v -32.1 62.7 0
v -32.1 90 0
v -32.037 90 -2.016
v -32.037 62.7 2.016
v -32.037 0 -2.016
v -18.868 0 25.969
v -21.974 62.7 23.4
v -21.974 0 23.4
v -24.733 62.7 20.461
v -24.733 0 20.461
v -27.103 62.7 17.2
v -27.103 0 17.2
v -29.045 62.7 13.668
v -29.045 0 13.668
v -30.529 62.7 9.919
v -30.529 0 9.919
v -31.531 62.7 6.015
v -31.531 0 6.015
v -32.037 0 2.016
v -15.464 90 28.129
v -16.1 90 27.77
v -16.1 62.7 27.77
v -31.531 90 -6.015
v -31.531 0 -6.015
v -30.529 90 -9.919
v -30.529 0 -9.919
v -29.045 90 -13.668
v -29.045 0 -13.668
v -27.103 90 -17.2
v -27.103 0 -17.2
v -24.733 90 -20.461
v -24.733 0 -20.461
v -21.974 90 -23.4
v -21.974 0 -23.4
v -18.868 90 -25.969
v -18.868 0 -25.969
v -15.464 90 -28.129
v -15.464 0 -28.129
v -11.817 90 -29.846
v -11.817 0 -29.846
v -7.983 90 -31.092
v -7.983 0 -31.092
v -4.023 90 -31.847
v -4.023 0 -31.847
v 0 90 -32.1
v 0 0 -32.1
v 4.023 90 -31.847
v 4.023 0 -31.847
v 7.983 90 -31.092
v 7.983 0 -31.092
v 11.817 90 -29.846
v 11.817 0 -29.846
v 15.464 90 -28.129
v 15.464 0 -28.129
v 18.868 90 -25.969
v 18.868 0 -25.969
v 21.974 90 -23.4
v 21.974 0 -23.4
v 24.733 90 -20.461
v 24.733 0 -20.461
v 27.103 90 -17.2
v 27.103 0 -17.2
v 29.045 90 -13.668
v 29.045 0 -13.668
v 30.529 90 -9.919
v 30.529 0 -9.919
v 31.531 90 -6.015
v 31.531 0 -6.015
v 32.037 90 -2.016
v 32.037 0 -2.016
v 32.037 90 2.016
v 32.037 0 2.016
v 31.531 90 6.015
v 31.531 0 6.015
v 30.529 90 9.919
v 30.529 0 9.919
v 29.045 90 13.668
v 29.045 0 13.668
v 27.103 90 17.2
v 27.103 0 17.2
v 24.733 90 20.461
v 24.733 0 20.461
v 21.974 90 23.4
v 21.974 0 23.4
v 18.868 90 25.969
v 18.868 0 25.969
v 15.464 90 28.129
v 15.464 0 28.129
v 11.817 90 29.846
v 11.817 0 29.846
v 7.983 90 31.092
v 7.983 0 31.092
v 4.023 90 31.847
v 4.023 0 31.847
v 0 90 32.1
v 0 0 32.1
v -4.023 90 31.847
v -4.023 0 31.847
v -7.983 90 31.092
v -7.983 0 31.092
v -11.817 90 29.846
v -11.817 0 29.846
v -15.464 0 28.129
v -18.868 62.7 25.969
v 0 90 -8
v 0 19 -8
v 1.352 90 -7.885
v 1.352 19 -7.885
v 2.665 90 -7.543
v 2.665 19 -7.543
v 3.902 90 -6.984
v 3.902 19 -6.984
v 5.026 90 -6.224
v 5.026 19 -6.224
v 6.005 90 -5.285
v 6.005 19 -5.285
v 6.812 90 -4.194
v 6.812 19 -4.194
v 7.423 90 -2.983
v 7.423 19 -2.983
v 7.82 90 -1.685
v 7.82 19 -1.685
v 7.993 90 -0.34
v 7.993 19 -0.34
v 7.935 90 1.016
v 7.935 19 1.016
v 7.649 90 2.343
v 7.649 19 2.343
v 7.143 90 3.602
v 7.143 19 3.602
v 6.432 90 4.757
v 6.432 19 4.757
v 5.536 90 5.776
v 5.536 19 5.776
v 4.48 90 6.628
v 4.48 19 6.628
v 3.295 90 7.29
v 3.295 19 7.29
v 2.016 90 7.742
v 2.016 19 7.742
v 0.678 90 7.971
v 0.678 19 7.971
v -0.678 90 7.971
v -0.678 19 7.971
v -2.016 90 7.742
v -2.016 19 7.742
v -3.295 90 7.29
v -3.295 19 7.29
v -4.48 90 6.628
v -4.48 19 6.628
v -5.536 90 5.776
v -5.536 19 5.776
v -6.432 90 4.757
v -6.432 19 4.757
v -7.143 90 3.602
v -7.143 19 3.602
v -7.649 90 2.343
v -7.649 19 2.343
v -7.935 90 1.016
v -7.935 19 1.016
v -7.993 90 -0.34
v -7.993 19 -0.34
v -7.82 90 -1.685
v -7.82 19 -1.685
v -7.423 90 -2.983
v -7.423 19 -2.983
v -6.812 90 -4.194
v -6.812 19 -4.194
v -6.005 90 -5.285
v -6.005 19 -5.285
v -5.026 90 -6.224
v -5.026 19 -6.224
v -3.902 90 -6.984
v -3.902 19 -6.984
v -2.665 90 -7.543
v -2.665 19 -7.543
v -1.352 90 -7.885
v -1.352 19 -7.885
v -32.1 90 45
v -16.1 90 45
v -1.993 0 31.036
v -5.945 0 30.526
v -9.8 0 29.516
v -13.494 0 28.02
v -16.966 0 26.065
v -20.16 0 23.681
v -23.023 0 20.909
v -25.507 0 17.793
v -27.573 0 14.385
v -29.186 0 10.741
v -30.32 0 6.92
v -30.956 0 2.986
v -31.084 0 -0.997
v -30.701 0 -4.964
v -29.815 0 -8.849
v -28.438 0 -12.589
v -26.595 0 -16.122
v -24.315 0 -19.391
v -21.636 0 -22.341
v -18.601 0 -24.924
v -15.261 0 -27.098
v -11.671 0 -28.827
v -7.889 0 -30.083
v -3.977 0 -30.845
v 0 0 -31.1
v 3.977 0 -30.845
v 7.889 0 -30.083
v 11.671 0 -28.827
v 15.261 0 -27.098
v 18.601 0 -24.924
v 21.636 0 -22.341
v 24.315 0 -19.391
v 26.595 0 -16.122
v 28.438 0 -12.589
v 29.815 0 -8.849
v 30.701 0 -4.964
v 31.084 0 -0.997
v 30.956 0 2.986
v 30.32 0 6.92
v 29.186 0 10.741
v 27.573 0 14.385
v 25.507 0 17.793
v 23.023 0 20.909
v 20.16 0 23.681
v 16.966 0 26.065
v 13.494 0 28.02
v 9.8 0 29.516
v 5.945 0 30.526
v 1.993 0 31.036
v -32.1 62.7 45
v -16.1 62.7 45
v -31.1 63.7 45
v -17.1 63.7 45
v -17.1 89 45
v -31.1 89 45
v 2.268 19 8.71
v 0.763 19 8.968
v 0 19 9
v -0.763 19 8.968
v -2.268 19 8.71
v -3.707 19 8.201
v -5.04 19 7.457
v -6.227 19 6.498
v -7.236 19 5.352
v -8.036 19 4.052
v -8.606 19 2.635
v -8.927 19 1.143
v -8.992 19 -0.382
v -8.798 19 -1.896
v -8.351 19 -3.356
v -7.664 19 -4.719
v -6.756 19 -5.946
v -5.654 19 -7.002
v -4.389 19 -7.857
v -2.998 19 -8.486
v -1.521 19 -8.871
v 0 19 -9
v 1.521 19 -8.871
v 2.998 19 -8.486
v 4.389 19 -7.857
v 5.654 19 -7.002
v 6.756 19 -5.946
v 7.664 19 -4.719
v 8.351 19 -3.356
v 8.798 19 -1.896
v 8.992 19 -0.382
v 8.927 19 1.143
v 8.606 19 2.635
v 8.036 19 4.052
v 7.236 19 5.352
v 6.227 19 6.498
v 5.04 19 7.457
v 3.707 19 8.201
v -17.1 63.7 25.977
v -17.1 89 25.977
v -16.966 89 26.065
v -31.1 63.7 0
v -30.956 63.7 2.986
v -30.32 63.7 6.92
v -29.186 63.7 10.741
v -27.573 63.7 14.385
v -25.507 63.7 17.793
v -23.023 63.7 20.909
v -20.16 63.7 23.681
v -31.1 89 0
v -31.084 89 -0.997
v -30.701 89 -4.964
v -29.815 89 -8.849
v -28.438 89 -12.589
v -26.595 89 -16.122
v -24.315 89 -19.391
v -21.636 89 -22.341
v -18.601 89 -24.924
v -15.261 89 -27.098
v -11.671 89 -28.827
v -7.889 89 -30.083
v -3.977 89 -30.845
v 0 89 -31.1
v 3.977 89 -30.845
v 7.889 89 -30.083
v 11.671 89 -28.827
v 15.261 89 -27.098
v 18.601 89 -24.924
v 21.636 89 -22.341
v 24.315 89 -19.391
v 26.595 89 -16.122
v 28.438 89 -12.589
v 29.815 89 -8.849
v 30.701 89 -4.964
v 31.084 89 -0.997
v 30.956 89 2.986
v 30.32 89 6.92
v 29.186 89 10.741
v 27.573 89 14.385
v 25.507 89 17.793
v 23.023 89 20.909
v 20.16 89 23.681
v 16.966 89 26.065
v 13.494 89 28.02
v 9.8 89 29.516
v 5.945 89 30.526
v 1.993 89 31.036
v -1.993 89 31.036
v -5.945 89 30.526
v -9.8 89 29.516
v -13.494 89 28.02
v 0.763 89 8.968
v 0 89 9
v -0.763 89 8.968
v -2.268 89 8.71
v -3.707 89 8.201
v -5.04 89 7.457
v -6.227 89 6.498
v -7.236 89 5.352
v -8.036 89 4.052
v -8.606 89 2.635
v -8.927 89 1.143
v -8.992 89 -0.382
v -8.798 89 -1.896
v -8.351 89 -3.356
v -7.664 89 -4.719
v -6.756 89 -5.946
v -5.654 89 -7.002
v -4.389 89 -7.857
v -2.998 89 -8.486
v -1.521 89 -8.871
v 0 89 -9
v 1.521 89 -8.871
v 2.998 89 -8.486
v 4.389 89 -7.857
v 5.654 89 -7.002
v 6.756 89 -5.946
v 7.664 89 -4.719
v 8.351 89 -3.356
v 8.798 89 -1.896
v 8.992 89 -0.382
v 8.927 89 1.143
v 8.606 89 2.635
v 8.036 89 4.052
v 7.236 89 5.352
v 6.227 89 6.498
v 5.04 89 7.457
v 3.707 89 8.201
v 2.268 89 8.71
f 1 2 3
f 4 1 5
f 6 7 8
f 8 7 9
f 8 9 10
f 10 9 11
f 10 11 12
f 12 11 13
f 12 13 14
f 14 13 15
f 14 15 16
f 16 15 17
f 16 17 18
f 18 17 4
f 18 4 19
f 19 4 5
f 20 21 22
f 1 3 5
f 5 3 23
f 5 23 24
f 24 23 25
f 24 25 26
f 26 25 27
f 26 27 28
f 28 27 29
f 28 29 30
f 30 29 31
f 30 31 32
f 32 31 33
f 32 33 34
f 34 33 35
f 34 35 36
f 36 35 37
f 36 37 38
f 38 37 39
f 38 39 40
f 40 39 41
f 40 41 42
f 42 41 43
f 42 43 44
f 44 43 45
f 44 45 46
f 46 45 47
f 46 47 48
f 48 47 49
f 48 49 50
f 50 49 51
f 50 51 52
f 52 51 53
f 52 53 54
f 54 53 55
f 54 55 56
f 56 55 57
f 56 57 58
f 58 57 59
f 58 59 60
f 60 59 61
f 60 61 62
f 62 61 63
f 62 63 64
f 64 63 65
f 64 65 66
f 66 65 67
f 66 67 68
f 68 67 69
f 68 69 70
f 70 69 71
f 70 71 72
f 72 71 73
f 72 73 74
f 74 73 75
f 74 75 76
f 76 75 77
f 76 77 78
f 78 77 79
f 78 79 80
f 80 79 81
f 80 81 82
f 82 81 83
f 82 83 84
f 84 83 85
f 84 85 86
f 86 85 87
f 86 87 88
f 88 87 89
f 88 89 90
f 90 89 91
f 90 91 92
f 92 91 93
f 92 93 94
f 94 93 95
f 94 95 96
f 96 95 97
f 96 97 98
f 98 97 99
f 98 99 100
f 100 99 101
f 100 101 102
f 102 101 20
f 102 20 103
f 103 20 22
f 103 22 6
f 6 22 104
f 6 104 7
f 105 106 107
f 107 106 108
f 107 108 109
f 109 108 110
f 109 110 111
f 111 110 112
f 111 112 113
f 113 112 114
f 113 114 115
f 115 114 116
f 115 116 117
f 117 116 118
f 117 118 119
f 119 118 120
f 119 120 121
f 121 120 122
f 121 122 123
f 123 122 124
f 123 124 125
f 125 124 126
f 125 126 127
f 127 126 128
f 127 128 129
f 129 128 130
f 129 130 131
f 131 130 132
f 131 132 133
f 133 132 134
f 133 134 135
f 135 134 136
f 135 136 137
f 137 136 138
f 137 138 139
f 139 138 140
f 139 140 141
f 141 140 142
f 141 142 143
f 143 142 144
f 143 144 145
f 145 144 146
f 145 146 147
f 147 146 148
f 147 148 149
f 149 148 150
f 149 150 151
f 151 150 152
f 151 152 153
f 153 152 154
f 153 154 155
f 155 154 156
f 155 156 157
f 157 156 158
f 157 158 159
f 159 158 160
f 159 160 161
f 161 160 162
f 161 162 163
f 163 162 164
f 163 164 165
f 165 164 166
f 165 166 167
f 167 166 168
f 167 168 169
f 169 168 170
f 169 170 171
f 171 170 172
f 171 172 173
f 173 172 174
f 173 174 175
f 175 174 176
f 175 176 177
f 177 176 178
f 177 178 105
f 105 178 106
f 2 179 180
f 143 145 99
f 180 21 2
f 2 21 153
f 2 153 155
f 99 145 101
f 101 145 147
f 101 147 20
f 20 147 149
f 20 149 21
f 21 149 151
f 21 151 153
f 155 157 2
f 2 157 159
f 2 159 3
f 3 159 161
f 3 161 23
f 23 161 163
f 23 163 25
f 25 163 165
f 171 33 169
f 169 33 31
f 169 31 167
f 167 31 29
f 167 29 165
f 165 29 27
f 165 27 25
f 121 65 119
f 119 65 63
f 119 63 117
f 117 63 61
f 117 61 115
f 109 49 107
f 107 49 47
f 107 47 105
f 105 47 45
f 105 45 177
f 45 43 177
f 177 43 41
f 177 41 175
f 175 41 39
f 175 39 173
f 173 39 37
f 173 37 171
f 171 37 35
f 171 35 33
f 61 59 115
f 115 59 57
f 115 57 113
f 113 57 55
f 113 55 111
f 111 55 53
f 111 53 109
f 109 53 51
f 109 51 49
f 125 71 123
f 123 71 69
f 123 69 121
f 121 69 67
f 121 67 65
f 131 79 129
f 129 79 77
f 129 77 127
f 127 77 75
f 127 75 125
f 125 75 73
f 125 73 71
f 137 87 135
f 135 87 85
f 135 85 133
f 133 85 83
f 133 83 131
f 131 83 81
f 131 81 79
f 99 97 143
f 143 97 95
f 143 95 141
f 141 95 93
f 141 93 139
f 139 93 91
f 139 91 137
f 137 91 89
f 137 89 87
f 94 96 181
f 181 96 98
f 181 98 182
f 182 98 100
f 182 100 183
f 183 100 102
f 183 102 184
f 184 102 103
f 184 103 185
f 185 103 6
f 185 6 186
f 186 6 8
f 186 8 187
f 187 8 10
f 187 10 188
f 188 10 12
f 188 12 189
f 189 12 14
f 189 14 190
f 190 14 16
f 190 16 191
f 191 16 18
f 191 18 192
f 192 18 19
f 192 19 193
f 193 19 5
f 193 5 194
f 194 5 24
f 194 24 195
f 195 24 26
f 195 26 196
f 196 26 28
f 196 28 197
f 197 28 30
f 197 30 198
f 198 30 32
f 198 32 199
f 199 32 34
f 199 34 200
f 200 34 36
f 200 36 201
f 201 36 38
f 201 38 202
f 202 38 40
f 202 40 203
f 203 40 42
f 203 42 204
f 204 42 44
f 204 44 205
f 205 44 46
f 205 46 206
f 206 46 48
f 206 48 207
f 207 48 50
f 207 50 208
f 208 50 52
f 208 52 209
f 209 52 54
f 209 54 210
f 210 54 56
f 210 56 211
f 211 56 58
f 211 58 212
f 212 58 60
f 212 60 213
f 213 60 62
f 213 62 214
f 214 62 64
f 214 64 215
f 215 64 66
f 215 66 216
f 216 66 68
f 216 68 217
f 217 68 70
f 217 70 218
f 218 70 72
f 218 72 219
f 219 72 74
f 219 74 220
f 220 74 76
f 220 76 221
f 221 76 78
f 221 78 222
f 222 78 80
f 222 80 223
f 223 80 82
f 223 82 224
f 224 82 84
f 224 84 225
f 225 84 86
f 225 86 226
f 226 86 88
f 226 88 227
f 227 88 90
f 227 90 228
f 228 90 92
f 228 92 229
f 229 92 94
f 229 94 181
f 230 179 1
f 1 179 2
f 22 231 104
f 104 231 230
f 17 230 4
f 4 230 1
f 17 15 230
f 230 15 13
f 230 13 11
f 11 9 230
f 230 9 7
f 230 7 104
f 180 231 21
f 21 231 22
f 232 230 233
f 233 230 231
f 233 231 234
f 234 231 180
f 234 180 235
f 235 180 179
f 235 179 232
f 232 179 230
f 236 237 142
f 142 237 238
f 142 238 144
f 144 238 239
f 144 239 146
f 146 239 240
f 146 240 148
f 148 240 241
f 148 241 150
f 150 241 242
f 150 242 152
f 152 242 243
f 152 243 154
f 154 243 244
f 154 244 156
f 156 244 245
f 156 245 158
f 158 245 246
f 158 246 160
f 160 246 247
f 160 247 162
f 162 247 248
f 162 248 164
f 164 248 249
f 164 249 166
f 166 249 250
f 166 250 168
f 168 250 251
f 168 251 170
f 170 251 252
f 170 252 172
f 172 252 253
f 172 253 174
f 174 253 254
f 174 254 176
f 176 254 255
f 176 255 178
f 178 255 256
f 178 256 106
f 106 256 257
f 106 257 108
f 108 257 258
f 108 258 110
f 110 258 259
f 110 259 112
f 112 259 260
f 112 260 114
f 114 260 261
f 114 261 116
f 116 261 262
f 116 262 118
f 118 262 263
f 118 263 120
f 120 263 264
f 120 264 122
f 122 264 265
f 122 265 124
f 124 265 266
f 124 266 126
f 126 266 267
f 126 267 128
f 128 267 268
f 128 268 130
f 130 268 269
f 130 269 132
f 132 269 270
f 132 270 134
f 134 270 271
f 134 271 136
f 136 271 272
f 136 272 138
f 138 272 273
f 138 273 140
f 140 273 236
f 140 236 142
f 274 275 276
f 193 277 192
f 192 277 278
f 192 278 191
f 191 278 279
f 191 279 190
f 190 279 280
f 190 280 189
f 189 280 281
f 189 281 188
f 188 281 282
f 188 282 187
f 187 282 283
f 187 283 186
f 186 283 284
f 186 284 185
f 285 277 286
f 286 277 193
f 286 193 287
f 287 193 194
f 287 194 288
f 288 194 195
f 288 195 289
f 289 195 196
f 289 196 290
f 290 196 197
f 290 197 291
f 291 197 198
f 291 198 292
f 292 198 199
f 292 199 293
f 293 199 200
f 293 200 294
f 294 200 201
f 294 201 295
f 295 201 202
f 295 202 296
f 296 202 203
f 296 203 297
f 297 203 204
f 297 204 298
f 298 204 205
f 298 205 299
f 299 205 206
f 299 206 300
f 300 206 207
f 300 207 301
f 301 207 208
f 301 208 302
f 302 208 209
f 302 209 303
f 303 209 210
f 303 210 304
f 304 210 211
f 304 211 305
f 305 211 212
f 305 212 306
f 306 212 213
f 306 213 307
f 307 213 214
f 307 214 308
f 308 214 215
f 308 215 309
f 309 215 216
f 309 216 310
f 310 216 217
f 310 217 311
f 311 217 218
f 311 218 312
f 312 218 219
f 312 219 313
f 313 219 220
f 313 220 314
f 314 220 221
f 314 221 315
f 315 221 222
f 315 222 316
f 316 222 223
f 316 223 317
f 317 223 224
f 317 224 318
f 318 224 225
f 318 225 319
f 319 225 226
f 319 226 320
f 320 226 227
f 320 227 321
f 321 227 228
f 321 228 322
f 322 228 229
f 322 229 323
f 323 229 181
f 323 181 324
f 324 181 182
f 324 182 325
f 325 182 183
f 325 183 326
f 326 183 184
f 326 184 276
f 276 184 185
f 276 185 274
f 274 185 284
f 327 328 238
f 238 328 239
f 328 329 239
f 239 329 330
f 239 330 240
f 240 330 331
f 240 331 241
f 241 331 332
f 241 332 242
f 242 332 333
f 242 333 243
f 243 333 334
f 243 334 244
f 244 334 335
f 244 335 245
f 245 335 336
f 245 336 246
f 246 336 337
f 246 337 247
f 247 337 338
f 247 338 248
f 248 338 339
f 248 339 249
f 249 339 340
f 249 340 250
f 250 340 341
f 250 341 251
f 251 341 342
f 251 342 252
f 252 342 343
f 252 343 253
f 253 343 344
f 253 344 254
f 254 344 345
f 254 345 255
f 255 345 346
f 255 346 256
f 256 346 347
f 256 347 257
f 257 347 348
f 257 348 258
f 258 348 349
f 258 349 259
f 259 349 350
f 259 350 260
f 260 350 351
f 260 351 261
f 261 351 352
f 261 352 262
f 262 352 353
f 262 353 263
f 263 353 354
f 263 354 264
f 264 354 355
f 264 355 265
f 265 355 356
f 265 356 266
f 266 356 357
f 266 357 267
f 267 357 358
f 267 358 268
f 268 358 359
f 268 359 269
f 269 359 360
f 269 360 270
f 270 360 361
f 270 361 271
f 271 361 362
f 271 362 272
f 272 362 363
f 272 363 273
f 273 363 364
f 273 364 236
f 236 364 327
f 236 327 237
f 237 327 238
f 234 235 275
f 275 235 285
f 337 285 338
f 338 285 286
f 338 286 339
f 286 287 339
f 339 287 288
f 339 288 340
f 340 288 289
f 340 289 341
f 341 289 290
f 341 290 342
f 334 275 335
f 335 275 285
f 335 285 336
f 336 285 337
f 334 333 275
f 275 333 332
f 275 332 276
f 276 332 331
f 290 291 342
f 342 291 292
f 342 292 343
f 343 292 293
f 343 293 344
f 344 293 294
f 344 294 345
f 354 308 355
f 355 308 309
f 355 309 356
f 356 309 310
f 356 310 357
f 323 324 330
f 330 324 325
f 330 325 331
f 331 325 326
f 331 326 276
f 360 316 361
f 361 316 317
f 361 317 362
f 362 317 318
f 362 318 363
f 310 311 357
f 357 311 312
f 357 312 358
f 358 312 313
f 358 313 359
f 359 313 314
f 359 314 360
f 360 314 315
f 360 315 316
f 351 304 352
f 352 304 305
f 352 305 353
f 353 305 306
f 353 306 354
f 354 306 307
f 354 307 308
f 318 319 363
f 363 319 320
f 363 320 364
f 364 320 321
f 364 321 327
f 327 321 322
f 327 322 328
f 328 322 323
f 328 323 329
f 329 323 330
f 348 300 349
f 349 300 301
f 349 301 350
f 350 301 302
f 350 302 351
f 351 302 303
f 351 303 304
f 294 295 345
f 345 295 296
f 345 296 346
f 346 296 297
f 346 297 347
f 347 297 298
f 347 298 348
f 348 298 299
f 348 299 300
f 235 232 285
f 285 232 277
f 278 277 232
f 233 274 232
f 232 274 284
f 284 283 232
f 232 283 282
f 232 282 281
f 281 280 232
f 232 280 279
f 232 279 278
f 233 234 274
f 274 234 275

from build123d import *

# Parameters (mm, degrees)
SKETCH_4_W          = 16
SKETCH_4_H          = 27.3
EXTRUDE_3_DEPTH     = 45
SHELL_2_OUTLINE_R   = 31.1
SHELL_2_OUTLINE_R_2 = 9
SHELL_2_DEPTH       = 89
SHELL_START         = 63.7
SHELL_2_2_DEPTH     = 25.3
SHELL_2_3_OUTLINE_R = 9
SHELL_2_3_DEPTH     = 19


# Read off the part's stored shape, not the designer's step: 쉘2
with BuildPart() as part:
    # 스케치3 → 회전1 (revolve)
    with BuildSketch(Plane.XY, mode=Mode.PRIVATE) as revolve_1_sk:
        Polygon((0, 19), (8, 19), (8, 90), (32.1, 90), (32.1, 0), (0, 0), align=None)
    revolve(revolve_1_sk.sketch.rotate(Axis((0, 0, 0), (0, 1, 0)), 90), axis=Axis((0, 0, 0), (0, 1, 0)))

    # 스케치4 → 보스-돌출3 (add)
    with BuildSketch(Plane.XY):
        with Locations((-24.1, 76.35)):
            Rectangle(SKETCH_4_W, SKETCH_4_H)
    extrude(amount=EXTRUDE_3_DEPTH)

    # 쉘2 outline → 쉘2 (cut)
    with BuildSketch(Plane(origin=(0, 0, 0), x_dir=(1, 0, 0), z_dir=(0, 1, 0))):
        Circle(SHELL_2_OUTLINE_R)
        Circle(SHELL_2_OUTLINE_R_2, mode=Mode.SUBTRACT)
    extrude(amount=SHELL_2_DEPTH, mode=Mode.SUBTRACT)

    # Shell 2 2 outline → Shell 2 2 (cut)
    with BuildSketch(Plane(origin=(0, 0, 0), x_dir=(1, 0, 0), z_dir=(0, 1, 0)).offset(SHELL_START)):
        with BuildLine():
            ThreePointArc((-17.1, -25.976912827), (-27.377180278, -14.754660281), (-31.1, 0))
            Line((-31.1, 0), (-31.1, -45))
            Line((-31.1, -45), (-17.1, -45))
            Line((-17.1, -45), (-17.1, -25.976912827))
        make_face()
    extrude(amount=SHELL_2_2_DEPTH, mode=Mode.SUBTRACT)

    # Shell 2 3 outline → Shell 2 3 (cut)
    with BuildSketch(Plane(origin=(0, 0, 0), x_dir=(1, 0, 0), z_dir=(0, 1, 0))):
        Circle(SHELL_2_3_OUTLINE_R)
    extrude(amount=SHELL_2_3_DEPTH, mode=Mode.SUBTRACT)


solid = part.part
